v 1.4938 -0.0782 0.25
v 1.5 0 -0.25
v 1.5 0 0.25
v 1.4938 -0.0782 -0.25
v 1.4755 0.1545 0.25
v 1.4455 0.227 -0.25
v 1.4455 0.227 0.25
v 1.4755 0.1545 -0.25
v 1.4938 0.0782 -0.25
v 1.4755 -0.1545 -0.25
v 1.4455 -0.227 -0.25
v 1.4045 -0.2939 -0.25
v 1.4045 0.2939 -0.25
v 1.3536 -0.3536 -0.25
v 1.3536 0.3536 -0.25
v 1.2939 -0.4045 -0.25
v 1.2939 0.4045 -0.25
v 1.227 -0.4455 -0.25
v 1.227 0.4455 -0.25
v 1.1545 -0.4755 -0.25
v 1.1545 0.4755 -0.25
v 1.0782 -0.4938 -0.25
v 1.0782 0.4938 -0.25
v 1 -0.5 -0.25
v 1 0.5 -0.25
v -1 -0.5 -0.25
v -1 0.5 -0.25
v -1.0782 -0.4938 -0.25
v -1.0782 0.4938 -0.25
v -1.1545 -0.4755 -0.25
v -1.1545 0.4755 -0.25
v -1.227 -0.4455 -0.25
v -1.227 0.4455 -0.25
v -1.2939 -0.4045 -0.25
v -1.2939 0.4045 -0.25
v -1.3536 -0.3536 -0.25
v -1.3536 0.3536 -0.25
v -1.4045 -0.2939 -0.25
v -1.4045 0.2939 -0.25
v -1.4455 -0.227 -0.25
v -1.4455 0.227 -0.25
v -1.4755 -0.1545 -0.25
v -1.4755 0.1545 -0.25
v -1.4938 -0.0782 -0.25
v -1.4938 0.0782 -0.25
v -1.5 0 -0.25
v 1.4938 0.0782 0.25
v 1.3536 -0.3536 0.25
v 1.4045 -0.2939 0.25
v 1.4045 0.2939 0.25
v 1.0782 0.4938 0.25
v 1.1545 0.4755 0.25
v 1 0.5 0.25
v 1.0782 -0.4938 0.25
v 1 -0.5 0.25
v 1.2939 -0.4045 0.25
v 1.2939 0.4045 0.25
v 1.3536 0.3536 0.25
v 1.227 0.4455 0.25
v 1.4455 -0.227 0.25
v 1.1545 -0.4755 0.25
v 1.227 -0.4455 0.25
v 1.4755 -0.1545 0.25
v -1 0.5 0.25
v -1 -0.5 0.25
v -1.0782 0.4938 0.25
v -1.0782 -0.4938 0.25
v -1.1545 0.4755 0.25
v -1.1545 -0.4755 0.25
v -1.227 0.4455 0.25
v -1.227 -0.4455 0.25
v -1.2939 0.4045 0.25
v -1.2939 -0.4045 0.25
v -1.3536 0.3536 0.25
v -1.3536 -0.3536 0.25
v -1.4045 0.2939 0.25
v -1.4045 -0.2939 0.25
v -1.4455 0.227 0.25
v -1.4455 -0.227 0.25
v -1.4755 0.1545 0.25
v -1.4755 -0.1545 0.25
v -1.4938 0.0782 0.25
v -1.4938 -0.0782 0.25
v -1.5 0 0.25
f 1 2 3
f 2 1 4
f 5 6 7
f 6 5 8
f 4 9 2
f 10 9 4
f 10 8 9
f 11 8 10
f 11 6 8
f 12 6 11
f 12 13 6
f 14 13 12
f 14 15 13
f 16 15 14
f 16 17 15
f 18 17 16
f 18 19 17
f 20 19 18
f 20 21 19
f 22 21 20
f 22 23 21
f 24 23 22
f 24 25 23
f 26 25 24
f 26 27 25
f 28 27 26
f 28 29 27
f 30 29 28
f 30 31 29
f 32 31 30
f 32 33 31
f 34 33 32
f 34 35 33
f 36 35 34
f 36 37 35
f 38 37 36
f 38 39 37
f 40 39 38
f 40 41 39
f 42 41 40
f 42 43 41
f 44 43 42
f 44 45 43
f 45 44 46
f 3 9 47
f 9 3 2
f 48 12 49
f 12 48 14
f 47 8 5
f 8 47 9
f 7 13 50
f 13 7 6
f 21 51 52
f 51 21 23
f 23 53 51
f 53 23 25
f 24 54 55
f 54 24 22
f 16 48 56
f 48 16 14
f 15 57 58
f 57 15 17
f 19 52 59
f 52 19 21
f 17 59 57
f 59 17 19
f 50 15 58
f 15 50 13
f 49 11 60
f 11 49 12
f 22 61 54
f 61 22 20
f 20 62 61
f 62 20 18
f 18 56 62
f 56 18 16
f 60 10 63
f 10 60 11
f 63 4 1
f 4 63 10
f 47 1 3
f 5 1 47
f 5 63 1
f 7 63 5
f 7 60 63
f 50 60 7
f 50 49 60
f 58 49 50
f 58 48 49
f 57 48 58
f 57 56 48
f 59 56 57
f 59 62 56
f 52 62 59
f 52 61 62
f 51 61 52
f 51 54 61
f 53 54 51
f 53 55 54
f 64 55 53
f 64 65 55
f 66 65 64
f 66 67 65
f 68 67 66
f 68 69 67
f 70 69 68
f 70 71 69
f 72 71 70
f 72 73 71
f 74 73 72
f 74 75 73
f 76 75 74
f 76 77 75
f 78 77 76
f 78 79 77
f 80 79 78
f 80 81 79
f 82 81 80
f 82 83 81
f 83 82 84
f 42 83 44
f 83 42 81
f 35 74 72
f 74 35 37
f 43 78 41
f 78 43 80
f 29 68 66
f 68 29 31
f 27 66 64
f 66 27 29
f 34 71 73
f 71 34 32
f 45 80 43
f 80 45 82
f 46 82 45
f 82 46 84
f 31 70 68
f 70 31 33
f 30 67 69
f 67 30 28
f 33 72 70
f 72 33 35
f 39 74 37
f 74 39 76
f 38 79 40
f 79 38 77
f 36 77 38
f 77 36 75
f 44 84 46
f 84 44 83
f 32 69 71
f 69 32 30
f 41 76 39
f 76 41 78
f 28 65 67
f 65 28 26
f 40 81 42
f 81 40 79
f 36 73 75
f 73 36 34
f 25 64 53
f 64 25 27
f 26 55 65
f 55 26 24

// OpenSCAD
Key_Lenght = 10;
Key_Height = 10;
Key_Width = 15;

union(){
    translate([1,0,0])
    cylinder(0.5,0.5,0.5, $fn=40, center=true);

    translate([-1,0,0])
    cylinder(0.5,0.5,0.5, $fn=40, center=true);

    cube([2,1,0.5],center = true);
}
